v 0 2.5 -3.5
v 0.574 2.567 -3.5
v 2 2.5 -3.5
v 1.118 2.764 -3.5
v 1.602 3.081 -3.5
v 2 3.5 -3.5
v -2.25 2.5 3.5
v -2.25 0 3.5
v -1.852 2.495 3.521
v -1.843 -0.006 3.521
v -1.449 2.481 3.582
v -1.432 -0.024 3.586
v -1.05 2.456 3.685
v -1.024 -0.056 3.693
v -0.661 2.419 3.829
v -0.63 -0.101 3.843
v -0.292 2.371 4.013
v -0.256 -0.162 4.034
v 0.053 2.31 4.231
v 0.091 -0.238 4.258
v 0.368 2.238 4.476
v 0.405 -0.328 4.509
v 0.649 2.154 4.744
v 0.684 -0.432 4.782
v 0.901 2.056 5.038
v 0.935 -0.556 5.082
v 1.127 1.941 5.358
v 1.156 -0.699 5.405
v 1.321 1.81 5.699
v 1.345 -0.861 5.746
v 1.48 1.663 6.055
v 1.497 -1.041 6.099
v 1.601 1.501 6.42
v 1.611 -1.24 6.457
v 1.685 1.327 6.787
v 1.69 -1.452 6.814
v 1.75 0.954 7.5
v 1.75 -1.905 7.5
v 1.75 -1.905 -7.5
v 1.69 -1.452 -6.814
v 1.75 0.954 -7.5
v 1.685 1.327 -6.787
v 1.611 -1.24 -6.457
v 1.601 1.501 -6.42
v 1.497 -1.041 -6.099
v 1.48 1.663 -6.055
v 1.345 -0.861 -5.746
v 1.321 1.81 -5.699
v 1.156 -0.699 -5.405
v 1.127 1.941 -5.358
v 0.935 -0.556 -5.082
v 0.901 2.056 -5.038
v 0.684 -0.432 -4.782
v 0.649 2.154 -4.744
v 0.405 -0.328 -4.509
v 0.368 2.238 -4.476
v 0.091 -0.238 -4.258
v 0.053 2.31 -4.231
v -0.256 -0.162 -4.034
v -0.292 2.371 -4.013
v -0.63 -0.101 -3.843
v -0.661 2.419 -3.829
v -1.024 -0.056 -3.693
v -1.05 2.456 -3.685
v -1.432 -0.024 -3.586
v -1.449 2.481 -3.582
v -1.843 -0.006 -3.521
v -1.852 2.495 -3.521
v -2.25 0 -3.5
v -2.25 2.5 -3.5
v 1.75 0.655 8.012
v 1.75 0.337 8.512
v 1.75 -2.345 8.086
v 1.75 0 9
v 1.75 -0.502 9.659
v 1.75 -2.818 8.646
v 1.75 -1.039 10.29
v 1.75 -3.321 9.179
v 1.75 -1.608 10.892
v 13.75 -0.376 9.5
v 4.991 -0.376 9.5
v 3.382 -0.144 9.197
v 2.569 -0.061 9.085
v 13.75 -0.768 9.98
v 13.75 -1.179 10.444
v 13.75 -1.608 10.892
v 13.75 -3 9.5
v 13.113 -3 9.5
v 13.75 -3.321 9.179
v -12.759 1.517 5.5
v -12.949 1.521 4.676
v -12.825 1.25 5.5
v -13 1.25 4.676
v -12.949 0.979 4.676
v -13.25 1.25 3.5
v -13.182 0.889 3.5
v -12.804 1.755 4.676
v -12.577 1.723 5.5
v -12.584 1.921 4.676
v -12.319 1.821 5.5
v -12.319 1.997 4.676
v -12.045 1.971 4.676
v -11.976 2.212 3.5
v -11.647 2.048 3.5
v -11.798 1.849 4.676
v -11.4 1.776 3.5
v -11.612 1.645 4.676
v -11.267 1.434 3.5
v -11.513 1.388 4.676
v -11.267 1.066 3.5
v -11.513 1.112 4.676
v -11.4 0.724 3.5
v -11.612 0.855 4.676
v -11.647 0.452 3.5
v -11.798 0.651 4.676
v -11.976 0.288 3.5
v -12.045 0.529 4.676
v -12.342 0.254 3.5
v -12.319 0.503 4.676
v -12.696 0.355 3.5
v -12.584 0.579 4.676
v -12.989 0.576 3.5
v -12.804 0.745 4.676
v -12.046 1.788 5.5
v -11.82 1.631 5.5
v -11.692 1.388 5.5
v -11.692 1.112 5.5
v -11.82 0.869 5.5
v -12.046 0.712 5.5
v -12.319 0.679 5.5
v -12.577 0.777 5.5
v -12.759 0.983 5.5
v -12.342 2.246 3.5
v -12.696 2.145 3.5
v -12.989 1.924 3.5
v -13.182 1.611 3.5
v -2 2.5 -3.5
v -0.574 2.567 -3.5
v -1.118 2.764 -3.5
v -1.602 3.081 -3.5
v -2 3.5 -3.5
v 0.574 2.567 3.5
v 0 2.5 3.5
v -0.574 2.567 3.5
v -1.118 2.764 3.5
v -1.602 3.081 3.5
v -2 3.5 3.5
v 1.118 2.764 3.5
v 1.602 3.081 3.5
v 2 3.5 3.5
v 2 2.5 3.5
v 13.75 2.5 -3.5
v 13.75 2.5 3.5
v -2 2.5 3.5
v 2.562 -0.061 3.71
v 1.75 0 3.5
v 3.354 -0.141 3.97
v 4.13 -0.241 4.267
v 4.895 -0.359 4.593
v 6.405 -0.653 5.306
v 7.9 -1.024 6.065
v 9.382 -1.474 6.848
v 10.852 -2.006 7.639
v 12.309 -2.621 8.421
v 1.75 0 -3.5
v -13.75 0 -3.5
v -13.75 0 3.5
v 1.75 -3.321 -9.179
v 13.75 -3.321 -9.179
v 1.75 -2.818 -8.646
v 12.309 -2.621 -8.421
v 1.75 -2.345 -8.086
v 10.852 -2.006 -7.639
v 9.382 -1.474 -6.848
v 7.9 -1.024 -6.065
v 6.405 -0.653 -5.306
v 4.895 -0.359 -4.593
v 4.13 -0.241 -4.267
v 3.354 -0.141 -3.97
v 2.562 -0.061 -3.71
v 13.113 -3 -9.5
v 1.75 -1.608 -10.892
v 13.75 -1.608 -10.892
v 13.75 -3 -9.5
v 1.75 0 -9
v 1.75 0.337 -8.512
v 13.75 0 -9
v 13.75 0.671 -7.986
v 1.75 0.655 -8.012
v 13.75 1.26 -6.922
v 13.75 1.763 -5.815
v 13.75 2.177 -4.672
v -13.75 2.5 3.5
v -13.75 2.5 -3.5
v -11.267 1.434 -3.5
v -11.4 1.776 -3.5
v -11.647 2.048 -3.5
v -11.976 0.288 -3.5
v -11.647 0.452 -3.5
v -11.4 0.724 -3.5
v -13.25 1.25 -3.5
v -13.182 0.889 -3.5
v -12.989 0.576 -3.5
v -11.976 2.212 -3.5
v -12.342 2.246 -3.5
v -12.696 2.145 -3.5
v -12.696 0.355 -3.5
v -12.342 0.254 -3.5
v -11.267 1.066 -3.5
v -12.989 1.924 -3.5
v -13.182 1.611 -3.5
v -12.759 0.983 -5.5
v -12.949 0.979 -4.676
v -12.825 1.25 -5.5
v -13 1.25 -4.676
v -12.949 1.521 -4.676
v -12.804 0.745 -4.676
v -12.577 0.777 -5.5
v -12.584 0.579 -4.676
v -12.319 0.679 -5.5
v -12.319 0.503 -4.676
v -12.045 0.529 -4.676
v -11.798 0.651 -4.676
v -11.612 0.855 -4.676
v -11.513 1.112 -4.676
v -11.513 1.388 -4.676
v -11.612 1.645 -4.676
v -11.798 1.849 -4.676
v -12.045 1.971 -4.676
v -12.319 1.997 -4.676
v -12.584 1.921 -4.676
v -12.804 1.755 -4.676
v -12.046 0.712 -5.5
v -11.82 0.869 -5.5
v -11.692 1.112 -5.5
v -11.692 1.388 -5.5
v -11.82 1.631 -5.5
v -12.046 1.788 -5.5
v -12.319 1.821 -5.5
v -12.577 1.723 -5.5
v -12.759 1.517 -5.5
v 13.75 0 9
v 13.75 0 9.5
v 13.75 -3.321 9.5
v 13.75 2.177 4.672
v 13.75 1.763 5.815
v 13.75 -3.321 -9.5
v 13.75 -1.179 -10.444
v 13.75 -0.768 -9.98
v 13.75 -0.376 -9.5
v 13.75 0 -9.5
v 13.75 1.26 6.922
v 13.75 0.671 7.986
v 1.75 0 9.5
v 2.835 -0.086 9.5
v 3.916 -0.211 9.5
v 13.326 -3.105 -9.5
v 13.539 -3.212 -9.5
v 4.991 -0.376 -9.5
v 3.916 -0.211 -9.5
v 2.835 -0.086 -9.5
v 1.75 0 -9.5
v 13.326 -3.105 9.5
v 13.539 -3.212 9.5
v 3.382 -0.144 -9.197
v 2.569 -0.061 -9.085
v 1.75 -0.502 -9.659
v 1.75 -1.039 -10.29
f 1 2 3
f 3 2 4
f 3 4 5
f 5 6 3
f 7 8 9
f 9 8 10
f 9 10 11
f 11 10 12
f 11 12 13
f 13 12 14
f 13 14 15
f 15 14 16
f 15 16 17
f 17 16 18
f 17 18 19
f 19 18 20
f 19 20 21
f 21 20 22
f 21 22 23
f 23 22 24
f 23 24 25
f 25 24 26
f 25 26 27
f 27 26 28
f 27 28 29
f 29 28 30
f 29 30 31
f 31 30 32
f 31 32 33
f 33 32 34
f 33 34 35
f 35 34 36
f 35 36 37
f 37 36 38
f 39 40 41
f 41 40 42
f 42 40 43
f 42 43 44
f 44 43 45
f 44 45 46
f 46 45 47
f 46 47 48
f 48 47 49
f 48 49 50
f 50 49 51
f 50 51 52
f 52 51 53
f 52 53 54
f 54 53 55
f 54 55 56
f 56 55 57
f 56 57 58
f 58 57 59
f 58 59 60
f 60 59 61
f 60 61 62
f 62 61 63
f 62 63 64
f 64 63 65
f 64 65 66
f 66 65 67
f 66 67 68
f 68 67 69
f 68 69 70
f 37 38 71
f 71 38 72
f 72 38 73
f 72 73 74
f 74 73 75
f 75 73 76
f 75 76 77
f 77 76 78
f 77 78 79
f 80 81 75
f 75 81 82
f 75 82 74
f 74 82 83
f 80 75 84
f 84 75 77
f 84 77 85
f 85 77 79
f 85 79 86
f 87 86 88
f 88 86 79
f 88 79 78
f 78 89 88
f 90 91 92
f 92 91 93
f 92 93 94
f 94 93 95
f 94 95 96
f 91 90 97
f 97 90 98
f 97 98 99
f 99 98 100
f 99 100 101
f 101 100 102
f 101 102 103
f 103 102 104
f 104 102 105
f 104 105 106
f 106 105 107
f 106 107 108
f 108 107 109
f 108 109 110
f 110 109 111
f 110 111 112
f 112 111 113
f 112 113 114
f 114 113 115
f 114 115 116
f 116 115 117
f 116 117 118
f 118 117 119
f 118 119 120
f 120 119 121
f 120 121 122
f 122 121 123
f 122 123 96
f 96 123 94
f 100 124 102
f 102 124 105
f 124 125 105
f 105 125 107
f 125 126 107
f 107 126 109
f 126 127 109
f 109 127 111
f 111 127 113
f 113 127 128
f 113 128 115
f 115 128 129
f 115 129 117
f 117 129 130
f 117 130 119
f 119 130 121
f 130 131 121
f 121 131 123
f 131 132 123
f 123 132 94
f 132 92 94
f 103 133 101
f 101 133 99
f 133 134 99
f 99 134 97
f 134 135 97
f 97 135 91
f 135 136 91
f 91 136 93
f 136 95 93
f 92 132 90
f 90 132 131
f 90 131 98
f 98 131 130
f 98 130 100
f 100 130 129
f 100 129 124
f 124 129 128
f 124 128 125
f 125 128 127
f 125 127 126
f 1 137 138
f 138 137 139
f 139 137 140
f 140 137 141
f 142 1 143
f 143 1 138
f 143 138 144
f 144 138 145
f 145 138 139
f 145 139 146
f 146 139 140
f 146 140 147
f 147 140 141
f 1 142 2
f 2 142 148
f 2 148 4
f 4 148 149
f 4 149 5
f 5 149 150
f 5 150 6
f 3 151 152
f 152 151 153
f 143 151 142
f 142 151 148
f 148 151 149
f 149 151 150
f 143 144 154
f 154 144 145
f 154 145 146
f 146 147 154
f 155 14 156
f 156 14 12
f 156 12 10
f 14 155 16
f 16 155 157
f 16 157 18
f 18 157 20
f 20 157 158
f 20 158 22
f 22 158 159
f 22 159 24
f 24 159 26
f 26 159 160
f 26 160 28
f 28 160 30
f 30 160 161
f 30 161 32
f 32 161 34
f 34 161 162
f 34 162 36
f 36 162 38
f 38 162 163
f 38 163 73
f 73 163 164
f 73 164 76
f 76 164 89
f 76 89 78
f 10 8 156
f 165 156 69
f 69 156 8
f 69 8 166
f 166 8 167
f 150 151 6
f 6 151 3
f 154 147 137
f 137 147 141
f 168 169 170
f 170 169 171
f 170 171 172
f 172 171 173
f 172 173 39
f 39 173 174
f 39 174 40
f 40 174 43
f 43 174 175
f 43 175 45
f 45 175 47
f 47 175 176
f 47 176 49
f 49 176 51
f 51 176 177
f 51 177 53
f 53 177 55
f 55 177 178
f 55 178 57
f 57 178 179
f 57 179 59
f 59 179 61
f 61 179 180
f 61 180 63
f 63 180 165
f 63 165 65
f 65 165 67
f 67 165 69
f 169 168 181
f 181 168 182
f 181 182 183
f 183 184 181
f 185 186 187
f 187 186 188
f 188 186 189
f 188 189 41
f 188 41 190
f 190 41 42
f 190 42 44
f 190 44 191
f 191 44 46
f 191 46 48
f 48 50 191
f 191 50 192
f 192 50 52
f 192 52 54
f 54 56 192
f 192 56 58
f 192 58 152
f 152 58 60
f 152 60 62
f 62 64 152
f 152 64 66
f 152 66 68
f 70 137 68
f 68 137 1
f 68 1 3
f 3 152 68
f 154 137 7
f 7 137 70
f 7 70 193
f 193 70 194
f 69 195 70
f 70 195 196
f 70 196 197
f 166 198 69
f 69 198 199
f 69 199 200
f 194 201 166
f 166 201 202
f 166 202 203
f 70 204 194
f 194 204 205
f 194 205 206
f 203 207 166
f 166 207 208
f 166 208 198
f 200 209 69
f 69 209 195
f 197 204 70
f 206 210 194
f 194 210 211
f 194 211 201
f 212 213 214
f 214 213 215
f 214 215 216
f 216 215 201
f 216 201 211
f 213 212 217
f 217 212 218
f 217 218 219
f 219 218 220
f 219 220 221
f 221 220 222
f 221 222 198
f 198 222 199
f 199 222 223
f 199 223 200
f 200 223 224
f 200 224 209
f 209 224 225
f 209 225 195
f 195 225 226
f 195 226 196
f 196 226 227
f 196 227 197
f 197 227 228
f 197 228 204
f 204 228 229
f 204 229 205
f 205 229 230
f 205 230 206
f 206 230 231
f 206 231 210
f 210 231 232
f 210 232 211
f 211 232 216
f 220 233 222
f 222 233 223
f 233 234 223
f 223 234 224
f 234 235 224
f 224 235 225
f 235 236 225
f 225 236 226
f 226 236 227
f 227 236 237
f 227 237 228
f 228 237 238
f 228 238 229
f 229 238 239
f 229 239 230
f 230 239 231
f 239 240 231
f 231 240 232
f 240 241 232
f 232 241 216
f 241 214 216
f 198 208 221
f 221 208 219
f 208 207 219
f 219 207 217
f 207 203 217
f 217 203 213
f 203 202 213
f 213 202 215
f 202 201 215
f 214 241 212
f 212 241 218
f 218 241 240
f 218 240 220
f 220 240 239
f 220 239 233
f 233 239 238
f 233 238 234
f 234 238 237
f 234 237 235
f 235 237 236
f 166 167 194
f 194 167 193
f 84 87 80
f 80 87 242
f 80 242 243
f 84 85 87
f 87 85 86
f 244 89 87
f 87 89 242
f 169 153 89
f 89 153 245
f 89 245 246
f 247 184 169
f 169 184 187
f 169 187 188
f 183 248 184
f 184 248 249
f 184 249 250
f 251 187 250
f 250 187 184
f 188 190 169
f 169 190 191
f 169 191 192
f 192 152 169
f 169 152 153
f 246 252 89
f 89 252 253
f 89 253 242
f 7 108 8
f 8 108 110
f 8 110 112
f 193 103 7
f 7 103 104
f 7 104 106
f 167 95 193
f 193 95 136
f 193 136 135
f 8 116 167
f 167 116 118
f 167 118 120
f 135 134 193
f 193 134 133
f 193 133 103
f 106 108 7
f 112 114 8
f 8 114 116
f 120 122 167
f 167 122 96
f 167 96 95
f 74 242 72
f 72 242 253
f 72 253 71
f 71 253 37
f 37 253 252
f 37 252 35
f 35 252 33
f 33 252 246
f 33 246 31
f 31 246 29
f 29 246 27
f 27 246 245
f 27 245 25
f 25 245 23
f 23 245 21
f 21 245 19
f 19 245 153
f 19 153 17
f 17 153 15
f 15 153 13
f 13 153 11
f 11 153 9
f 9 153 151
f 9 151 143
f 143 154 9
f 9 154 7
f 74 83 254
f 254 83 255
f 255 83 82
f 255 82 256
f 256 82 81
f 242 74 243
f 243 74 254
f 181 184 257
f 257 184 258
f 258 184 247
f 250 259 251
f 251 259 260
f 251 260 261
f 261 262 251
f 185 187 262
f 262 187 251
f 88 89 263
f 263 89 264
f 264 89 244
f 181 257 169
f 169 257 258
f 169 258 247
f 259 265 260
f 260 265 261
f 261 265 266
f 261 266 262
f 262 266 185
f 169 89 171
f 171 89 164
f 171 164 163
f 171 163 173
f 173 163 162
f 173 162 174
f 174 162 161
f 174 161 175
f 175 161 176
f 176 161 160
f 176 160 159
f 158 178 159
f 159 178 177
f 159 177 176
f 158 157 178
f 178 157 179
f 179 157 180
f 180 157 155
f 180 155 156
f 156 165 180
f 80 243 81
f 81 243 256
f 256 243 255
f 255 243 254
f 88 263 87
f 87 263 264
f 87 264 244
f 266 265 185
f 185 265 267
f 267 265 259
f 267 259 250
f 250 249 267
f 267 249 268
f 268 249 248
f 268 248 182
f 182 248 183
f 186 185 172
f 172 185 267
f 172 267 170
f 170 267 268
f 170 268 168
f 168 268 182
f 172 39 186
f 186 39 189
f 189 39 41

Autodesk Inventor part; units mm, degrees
ref_plane "YZ Plane" through (0, 0, 0) normal (1, 0, 0) x (0, 1, 0)
ref_plane "XZ Plane" through (0, 0, 0) normal (0, 1, 0) x (-1, 0, 0)
ref_plane "XY Plane" through (0, 0, 0) normal (0, 0, 1) x (1, 0, 0)
sketch "Sketch1" plane through (0, 0, 0) normal (0, 1, 0) x (-1, 0, 0)
  line L0 (-13.75, 3.5) -> (13.75, 3.5)
  line L1 (13.75, 3.5) -> (13.75, -3.5)
  line L2 (13.75, -3.5) -> (-13.75, -3.5)
  line L3 (-13.75, -3.5) -> (-13.75, 3.5)
  line L4 (-13.75, 3.5) -> (13.75, -3.5) construction
  line L5 (13.75, 3.5) -> (-13.75, -3.5) construction
  point P0 (0, 0)
  dimension "d0" = 27.5
  dimension "d1" = 7
extrude "Extrusion1" add sketch "Sketch1" along normal blind 2.5
sketch "Sketch2" plane through (13.75, 0, -3.5) normal (0, 0, -1) x (-1, 0, 0)
  line L0 (27.5, 0) -> (27.5, 2.5) projected
  line L1 (27.5, 1.25) -> (26, 1.25)
  circle A0 centre (26, 1.25) radius 1
  point P0 (13.75, 0)
  dimension "d4" = 1.5
  dimension "d5" = 2
extrude "Extrusion2" add sketch "Sketch2" along normal blind 2 draft -12
sketch "Sketch3" plane through (13.75, 0, 3.5) normal (1, 0, 0) x (0, 0, -1)
  line L0 (0, 2.5) -> (7, 2.5) projected
  line L1 (3.5, 2.5) -> (3.5, -12.5)
  line L2 (7, 0) -> (7, 2.5) projected
  arc A0 (14.3915, -1.6085) -> (7, 2.5) centre (3.5, -12.5) ccw
  arc A1 (12.6788, -3.3212) -> (3.5, 0.4808) centre (3.5, -12.5) ccw
  line L3 (3.5, -12.5) -> (14.3915, -1.6085)
  line L4 (3.5, -12.5) -> (18.9029, -12.5) construction
  line L5 (7, 0) -> (7, 2.5)
  point P0 (3.5, 0)
  dimension "d8" = 15
  dimension "d9" = 45
extrude "Extrusion3" add sketch "Sketch3" against normal blind 12 contours L0 L2 A1 L1 | A0 L3 A1 L2
sketch "Sketch4" plane through (-13.75, 0, 3.5) normal (0, 0, 1) x (1, 0, 0)
  line L0 (0, 2.5) -> (27.5, 2.5) projected
  line L1 (13.75, 2.5) -> (15.75, 2.5)
  line L2 (15.75, 2.5) -> (11.75, 2.5)
  line L3 (11.75, 2.5) -> (11.75, 3.5)
  line L4 (11.75, 3.5) -> (15.75, 3.5)
  line L5 (15.75, 3.5) -> (15.75, 2.5)
  arc A0 (11.75, 3.5) -> (15.75, 3.5) centre (13.75, 5) ccw
  point P0 (13.75, 0)
  dimension "d12" = 2
  dimension "d13" = 4
  dimension "d14" = 1
extrude "Extrusion4" add sketch "Sketch4" against normal blind 3.5 contours L3 A0 L0 | A0 L5 L0
fillet "Fillet1" radius 4 1 edges at (1.75, 1.25, -3.5)
mirror "Mirror1" about plane through (1.2398, 2.7314, 0) normal (0, 0, -1)
ref_plane "Work Plane1" through (2, 2.5, 9.5) normal (0, 0, 1) x (1, 0, 0)
sketch "Sketch6" plane through (2, 2.5, 9.5) normal (0, 0, 1) x (1, 0, 0)
  line L0 (11.75, -2.5) -> (11.75, -5.8212) projected
  line L1 (11.75, -5.8894) -> (11.75, -2.5)
  line L2 (-4.25, -2.5) -> (11.75, -2.5) projected
  line L3 (11.75, -2.5) -> (-0.25, -2.5)
  arc A0 (11.75, -5.8212) -> (-0.25, -2.5) centre (-2.078, -32.4443) ccw
  point P0 (-2, -2.5)
  dimension "d25" = 12
  dimension "d26" = 30
extrude "Extrusion6" add sketch "Sketch6" against normal blind 19
properties part number "index_clamp"
